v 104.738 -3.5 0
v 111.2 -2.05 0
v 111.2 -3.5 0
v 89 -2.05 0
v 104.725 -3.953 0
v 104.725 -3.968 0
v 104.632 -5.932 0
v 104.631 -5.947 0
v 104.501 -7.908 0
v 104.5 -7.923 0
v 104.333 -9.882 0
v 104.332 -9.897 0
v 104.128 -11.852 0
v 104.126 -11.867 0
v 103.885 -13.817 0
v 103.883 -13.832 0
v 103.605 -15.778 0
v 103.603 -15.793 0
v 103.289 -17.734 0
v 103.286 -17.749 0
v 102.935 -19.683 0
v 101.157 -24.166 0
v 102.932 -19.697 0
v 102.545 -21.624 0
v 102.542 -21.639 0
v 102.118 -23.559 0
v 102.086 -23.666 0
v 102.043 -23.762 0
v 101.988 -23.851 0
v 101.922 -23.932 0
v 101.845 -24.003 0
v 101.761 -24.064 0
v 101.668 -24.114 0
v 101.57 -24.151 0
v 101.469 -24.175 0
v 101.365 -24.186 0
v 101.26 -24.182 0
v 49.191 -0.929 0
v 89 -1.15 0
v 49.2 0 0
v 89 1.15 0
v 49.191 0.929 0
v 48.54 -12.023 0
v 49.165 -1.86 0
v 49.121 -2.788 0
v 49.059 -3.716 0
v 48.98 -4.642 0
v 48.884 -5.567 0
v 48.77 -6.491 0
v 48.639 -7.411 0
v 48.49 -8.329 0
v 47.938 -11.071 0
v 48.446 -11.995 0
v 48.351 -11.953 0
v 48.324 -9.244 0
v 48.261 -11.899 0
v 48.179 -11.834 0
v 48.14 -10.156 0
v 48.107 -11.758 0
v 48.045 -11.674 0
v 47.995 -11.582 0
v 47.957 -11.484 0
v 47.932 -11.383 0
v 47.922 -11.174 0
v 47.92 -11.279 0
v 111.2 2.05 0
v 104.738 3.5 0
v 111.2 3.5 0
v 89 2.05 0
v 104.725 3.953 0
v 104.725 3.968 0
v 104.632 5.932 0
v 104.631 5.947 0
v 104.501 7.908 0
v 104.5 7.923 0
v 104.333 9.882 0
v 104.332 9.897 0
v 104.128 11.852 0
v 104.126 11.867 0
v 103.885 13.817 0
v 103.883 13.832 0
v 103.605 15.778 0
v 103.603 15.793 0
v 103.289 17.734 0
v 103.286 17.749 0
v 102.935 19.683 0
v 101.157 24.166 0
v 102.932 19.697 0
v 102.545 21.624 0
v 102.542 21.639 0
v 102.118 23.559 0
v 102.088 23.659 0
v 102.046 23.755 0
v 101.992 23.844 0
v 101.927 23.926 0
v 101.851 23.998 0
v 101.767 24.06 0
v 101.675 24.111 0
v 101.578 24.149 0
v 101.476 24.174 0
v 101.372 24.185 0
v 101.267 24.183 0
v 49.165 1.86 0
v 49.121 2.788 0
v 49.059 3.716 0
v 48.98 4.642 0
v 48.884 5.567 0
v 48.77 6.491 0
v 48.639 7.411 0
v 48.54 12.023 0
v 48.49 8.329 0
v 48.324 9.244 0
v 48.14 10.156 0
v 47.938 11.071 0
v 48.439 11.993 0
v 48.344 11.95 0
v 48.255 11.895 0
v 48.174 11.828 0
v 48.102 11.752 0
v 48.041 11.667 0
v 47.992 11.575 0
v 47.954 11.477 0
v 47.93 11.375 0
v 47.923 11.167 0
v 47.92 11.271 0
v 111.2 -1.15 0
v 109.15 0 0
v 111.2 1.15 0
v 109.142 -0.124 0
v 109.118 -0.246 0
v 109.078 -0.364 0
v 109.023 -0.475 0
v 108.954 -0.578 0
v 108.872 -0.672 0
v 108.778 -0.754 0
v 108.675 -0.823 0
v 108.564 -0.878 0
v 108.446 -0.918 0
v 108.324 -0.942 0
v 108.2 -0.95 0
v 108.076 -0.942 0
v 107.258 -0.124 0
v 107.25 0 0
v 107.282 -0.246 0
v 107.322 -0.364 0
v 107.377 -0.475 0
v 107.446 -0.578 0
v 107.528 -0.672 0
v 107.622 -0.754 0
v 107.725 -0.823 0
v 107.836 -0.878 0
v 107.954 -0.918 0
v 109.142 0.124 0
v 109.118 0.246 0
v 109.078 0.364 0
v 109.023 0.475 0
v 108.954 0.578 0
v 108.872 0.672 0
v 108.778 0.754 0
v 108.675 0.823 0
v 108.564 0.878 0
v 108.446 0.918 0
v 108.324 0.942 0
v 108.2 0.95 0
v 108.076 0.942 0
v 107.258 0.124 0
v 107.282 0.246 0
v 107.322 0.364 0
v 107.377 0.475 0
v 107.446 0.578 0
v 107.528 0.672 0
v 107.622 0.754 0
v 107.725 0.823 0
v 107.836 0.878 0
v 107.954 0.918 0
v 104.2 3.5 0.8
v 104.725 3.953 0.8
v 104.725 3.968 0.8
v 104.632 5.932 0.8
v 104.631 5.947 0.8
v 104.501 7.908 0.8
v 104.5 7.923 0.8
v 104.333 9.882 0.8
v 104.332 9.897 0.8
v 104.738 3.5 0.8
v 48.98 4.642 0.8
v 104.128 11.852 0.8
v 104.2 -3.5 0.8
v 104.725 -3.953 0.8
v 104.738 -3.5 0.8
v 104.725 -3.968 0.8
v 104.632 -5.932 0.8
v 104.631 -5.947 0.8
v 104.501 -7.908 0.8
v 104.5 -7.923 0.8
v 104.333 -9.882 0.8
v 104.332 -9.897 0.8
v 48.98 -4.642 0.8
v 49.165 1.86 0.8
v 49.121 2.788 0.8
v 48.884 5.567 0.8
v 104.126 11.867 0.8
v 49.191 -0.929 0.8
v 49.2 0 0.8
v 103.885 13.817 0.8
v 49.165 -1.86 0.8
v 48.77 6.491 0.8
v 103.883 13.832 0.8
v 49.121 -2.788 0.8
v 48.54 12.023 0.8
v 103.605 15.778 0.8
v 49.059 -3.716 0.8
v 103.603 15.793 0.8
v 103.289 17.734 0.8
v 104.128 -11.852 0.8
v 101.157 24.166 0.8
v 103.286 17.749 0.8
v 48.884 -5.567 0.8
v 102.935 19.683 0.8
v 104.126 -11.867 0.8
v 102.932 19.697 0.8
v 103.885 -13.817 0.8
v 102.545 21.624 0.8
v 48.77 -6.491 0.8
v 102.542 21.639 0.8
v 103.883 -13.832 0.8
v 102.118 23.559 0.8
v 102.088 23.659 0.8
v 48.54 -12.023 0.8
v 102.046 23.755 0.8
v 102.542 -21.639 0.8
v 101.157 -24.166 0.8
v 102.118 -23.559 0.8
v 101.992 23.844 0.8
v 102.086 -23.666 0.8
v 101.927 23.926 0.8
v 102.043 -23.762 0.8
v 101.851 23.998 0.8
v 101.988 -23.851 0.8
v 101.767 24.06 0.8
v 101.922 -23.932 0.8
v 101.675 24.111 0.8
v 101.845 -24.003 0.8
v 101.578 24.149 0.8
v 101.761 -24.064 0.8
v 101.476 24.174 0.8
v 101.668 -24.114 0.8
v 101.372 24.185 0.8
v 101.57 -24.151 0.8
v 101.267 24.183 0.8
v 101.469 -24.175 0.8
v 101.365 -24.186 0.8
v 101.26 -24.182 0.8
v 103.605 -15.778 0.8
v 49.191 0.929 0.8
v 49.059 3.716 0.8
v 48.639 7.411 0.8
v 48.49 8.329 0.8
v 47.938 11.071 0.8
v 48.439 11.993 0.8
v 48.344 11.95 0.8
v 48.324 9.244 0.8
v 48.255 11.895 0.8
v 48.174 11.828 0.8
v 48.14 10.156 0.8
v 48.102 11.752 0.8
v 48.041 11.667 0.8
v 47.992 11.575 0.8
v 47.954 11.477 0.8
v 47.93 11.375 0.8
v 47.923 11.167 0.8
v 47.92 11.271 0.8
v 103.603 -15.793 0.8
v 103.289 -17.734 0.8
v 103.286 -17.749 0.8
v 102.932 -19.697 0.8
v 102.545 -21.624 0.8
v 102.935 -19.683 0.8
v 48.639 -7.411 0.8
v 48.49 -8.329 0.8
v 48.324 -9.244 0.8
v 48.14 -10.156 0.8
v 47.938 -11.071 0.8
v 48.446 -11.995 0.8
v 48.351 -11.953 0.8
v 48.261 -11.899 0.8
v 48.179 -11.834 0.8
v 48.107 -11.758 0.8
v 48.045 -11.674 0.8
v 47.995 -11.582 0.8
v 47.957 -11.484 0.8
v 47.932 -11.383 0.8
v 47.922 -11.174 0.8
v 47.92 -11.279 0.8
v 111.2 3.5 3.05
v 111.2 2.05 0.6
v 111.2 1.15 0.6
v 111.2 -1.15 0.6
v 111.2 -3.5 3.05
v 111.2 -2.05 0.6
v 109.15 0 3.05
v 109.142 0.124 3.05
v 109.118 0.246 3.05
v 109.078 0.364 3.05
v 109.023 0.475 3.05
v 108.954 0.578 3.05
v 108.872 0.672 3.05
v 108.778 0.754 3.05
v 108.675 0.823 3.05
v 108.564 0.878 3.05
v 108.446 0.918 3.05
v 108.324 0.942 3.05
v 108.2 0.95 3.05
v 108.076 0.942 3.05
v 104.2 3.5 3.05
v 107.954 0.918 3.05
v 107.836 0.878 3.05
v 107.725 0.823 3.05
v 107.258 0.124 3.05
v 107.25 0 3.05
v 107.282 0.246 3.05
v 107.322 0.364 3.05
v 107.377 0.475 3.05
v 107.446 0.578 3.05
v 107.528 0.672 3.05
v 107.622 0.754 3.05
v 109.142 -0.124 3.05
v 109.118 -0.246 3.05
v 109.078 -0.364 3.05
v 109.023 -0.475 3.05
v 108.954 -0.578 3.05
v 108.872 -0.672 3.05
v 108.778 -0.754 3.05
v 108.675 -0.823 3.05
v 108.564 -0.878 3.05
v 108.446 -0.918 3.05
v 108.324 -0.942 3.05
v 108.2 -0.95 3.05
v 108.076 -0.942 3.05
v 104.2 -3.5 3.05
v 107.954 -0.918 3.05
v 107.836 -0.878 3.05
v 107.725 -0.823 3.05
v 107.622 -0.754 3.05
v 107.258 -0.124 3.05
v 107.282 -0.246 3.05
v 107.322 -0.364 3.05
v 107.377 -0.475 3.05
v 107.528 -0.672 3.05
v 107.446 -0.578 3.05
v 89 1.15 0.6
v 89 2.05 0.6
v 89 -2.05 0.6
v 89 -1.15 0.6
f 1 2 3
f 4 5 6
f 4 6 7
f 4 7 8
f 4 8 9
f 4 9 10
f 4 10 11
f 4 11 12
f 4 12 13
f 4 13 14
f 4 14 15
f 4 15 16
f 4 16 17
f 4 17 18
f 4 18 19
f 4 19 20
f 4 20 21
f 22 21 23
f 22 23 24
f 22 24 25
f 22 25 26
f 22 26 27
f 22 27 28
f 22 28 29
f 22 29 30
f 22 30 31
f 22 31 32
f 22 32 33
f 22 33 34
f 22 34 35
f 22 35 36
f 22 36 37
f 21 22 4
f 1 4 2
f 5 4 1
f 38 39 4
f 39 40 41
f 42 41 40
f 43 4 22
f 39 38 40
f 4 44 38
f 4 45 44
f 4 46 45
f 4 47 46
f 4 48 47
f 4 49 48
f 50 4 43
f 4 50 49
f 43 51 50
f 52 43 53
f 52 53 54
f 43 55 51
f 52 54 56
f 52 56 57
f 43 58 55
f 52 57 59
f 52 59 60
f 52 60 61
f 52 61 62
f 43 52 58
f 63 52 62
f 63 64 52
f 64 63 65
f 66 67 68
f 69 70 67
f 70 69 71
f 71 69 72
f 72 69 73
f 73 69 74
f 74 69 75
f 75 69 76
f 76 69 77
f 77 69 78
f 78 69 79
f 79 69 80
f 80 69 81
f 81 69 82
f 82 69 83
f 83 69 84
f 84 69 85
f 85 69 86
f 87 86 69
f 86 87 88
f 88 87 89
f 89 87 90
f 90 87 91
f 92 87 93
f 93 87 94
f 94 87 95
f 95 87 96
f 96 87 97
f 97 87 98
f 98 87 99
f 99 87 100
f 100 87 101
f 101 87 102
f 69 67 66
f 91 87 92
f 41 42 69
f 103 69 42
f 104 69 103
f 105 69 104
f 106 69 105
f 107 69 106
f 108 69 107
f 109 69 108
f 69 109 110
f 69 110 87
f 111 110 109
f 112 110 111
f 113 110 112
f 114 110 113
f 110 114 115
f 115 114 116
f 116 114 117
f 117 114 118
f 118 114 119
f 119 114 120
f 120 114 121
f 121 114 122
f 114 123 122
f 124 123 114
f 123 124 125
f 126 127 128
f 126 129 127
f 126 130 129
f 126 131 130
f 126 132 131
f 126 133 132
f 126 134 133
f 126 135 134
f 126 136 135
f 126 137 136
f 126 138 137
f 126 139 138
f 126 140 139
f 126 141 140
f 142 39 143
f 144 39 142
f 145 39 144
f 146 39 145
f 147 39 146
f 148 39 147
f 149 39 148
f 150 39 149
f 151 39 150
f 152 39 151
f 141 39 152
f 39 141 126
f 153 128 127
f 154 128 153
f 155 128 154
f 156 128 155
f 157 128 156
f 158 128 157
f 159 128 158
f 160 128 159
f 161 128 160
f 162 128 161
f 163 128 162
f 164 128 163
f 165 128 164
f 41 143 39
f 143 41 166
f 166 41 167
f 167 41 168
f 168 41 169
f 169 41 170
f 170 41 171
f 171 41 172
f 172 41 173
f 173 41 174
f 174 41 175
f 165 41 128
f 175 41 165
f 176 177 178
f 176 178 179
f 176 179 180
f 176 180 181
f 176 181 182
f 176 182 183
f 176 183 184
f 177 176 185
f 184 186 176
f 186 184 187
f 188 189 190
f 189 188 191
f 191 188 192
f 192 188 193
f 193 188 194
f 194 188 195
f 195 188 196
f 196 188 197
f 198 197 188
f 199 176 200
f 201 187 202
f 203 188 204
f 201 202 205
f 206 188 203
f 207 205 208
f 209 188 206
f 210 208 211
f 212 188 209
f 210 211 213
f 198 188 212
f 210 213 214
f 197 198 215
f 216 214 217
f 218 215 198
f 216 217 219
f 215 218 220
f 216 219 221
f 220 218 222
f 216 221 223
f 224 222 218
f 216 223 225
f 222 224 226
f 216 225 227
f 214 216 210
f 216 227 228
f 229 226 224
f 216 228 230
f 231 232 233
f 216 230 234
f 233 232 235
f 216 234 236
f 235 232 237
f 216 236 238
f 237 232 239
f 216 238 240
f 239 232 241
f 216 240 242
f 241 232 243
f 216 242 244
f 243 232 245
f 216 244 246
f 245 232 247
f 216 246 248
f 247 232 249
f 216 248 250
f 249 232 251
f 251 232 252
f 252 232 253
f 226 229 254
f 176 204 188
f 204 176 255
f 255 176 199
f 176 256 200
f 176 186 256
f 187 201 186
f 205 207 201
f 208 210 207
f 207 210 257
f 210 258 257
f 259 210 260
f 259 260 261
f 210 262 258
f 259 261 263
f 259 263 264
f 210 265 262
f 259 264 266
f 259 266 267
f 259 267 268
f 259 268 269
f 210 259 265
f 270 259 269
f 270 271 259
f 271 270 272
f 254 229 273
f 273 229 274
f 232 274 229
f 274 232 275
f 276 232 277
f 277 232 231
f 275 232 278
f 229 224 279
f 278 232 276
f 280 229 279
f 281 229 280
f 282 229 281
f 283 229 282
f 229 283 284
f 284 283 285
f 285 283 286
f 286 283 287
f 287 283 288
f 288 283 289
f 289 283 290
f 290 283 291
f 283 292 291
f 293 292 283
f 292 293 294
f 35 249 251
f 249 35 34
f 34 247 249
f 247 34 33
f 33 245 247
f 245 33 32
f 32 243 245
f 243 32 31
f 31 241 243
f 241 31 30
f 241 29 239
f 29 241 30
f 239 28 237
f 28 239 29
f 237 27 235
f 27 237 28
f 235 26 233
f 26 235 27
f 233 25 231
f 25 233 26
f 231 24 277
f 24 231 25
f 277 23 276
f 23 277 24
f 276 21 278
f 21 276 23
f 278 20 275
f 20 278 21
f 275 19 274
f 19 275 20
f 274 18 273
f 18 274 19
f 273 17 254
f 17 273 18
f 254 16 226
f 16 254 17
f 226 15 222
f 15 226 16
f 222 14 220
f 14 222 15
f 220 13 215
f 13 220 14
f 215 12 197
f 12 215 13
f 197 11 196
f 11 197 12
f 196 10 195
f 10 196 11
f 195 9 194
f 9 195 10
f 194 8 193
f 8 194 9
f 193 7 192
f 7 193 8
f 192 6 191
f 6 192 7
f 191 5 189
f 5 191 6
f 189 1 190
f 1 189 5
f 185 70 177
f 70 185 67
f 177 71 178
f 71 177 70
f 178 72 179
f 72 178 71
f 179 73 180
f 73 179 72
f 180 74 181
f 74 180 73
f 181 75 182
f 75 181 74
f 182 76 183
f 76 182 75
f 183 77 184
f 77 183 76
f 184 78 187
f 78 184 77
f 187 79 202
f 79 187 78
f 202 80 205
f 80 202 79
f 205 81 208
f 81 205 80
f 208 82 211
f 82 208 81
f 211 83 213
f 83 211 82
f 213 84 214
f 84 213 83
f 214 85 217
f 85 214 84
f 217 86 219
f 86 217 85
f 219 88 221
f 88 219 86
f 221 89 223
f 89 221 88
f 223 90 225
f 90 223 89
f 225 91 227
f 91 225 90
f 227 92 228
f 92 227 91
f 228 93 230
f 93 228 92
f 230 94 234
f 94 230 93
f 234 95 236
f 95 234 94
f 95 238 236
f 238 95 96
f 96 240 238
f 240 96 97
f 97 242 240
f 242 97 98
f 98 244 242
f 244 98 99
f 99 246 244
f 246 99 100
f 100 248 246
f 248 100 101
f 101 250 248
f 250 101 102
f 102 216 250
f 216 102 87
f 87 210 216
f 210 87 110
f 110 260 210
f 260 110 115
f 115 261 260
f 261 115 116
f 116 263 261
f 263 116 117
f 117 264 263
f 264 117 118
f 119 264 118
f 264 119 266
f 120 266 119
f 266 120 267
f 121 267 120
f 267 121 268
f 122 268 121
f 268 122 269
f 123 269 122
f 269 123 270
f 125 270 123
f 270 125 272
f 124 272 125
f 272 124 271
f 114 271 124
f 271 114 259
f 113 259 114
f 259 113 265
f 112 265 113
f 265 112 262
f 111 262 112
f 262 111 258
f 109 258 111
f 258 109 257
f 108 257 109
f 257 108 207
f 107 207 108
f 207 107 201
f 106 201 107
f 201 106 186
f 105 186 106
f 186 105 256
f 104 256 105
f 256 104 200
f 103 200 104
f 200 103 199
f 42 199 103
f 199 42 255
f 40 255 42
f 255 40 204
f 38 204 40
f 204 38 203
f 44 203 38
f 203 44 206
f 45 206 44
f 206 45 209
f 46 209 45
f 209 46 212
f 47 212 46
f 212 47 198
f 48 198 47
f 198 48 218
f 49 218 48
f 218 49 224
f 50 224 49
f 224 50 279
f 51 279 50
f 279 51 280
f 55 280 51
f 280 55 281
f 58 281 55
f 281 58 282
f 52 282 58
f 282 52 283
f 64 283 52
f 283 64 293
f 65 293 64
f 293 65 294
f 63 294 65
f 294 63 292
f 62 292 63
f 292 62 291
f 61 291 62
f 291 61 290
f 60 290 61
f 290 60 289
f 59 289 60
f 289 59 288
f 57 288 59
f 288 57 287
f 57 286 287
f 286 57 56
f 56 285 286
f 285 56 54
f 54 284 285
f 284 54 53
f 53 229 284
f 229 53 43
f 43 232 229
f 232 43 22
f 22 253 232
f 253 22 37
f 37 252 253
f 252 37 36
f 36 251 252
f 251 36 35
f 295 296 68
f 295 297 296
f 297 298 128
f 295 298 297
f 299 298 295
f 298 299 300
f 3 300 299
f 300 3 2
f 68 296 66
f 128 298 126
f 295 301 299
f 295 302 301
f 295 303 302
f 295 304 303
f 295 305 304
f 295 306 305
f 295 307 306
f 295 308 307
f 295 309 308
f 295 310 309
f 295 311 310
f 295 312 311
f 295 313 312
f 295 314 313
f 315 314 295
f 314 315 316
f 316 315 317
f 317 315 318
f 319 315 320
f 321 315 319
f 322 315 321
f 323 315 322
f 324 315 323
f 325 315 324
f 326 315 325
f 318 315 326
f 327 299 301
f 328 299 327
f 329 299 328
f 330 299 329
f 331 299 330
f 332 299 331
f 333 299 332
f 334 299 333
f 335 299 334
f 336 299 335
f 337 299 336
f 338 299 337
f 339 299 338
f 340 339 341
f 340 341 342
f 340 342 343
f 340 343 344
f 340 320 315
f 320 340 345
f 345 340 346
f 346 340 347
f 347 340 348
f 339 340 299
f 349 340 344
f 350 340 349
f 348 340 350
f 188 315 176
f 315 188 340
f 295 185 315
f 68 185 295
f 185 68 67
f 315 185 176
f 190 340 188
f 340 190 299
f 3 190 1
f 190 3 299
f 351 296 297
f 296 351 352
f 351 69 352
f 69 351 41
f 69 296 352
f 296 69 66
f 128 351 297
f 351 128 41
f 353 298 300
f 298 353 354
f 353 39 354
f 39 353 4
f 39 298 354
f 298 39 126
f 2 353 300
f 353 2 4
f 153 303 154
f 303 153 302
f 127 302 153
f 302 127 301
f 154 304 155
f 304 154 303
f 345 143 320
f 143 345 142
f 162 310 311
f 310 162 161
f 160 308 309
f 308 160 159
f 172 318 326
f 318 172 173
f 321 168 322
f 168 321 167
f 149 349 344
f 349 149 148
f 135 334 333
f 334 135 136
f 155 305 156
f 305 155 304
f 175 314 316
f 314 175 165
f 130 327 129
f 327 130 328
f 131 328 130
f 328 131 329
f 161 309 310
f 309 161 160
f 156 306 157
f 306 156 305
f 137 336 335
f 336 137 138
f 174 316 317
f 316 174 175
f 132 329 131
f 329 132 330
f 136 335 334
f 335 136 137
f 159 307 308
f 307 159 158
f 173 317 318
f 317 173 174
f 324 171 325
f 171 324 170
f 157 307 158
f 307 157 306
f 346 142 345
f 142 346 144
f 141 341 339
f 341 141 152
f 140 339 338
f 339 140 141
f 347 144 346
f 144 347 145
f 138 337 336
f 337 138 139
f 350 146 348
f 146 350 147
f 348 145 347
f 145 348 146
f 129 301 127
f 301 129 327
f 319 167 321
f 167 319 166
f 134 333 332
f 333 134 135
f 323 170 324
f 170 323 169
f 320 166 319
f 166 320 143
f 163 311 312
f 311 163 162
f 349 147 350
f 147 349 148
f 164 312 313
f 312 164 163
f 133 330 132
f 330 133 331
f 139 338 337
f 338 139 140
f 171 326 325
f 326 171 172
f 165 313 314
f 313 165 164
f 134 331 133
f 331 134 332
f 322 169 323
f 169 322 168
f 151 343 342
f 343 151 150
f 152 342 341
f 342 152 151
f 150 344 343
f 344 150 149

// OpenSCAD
// Gen-CJ — bobbin LID (top flange + locating tab). Print x12, flange face DOWN on the bed.
// CA-glue onto the hub top BEFORE winding. Tab = lap joint into the stator tab pocket; 1.75 mm filament
// pin through pin hole + stator ledge, trim flush. Lead slots carry both leads flush.
include <parameters.scad>;
$fn = 48;
module sector_2d(r_in, r_out, ang) {
    polygon([
        for (a = [-ang/2 : ang/24 : ang/2]) [r_in*cos(a), r_in*sin(a)],
        for (a = [ang/2 : -ang/24 : -ang/2]) [r_out*cos(a), r_out*sin(a)]
    ]);
}
module footprint_2d() { offset(r=wall) sector_2d(coil_id_r, coil_od_r, span_deg); }
module hub_2d()       { offset(delta=-coil_core_inset) sector_2d(coil_id_r, coil_od_r, span_deg); }

difference() {
    union() {
        linear_extrude(flange_t) footprint_2d();
        translate([coil_od_r + 0.2, -tab_w/2, 0]) cube([tab_len, tab_w, tab_h]);
    }
    translate([coil_mount_r, 0, -0.1]) cylinder(d=pin_d, h=tab_h + 1);
    for (y = [lead_y, -lead_y])
        translate([coil_od_r - coil_core_inset - 0.5, y - lead_slot_w/2, -0.1])
            cube([coil_core_inset + tab_len + 2, lead_slot_w, lead_groove_d + 0.1]);
}
